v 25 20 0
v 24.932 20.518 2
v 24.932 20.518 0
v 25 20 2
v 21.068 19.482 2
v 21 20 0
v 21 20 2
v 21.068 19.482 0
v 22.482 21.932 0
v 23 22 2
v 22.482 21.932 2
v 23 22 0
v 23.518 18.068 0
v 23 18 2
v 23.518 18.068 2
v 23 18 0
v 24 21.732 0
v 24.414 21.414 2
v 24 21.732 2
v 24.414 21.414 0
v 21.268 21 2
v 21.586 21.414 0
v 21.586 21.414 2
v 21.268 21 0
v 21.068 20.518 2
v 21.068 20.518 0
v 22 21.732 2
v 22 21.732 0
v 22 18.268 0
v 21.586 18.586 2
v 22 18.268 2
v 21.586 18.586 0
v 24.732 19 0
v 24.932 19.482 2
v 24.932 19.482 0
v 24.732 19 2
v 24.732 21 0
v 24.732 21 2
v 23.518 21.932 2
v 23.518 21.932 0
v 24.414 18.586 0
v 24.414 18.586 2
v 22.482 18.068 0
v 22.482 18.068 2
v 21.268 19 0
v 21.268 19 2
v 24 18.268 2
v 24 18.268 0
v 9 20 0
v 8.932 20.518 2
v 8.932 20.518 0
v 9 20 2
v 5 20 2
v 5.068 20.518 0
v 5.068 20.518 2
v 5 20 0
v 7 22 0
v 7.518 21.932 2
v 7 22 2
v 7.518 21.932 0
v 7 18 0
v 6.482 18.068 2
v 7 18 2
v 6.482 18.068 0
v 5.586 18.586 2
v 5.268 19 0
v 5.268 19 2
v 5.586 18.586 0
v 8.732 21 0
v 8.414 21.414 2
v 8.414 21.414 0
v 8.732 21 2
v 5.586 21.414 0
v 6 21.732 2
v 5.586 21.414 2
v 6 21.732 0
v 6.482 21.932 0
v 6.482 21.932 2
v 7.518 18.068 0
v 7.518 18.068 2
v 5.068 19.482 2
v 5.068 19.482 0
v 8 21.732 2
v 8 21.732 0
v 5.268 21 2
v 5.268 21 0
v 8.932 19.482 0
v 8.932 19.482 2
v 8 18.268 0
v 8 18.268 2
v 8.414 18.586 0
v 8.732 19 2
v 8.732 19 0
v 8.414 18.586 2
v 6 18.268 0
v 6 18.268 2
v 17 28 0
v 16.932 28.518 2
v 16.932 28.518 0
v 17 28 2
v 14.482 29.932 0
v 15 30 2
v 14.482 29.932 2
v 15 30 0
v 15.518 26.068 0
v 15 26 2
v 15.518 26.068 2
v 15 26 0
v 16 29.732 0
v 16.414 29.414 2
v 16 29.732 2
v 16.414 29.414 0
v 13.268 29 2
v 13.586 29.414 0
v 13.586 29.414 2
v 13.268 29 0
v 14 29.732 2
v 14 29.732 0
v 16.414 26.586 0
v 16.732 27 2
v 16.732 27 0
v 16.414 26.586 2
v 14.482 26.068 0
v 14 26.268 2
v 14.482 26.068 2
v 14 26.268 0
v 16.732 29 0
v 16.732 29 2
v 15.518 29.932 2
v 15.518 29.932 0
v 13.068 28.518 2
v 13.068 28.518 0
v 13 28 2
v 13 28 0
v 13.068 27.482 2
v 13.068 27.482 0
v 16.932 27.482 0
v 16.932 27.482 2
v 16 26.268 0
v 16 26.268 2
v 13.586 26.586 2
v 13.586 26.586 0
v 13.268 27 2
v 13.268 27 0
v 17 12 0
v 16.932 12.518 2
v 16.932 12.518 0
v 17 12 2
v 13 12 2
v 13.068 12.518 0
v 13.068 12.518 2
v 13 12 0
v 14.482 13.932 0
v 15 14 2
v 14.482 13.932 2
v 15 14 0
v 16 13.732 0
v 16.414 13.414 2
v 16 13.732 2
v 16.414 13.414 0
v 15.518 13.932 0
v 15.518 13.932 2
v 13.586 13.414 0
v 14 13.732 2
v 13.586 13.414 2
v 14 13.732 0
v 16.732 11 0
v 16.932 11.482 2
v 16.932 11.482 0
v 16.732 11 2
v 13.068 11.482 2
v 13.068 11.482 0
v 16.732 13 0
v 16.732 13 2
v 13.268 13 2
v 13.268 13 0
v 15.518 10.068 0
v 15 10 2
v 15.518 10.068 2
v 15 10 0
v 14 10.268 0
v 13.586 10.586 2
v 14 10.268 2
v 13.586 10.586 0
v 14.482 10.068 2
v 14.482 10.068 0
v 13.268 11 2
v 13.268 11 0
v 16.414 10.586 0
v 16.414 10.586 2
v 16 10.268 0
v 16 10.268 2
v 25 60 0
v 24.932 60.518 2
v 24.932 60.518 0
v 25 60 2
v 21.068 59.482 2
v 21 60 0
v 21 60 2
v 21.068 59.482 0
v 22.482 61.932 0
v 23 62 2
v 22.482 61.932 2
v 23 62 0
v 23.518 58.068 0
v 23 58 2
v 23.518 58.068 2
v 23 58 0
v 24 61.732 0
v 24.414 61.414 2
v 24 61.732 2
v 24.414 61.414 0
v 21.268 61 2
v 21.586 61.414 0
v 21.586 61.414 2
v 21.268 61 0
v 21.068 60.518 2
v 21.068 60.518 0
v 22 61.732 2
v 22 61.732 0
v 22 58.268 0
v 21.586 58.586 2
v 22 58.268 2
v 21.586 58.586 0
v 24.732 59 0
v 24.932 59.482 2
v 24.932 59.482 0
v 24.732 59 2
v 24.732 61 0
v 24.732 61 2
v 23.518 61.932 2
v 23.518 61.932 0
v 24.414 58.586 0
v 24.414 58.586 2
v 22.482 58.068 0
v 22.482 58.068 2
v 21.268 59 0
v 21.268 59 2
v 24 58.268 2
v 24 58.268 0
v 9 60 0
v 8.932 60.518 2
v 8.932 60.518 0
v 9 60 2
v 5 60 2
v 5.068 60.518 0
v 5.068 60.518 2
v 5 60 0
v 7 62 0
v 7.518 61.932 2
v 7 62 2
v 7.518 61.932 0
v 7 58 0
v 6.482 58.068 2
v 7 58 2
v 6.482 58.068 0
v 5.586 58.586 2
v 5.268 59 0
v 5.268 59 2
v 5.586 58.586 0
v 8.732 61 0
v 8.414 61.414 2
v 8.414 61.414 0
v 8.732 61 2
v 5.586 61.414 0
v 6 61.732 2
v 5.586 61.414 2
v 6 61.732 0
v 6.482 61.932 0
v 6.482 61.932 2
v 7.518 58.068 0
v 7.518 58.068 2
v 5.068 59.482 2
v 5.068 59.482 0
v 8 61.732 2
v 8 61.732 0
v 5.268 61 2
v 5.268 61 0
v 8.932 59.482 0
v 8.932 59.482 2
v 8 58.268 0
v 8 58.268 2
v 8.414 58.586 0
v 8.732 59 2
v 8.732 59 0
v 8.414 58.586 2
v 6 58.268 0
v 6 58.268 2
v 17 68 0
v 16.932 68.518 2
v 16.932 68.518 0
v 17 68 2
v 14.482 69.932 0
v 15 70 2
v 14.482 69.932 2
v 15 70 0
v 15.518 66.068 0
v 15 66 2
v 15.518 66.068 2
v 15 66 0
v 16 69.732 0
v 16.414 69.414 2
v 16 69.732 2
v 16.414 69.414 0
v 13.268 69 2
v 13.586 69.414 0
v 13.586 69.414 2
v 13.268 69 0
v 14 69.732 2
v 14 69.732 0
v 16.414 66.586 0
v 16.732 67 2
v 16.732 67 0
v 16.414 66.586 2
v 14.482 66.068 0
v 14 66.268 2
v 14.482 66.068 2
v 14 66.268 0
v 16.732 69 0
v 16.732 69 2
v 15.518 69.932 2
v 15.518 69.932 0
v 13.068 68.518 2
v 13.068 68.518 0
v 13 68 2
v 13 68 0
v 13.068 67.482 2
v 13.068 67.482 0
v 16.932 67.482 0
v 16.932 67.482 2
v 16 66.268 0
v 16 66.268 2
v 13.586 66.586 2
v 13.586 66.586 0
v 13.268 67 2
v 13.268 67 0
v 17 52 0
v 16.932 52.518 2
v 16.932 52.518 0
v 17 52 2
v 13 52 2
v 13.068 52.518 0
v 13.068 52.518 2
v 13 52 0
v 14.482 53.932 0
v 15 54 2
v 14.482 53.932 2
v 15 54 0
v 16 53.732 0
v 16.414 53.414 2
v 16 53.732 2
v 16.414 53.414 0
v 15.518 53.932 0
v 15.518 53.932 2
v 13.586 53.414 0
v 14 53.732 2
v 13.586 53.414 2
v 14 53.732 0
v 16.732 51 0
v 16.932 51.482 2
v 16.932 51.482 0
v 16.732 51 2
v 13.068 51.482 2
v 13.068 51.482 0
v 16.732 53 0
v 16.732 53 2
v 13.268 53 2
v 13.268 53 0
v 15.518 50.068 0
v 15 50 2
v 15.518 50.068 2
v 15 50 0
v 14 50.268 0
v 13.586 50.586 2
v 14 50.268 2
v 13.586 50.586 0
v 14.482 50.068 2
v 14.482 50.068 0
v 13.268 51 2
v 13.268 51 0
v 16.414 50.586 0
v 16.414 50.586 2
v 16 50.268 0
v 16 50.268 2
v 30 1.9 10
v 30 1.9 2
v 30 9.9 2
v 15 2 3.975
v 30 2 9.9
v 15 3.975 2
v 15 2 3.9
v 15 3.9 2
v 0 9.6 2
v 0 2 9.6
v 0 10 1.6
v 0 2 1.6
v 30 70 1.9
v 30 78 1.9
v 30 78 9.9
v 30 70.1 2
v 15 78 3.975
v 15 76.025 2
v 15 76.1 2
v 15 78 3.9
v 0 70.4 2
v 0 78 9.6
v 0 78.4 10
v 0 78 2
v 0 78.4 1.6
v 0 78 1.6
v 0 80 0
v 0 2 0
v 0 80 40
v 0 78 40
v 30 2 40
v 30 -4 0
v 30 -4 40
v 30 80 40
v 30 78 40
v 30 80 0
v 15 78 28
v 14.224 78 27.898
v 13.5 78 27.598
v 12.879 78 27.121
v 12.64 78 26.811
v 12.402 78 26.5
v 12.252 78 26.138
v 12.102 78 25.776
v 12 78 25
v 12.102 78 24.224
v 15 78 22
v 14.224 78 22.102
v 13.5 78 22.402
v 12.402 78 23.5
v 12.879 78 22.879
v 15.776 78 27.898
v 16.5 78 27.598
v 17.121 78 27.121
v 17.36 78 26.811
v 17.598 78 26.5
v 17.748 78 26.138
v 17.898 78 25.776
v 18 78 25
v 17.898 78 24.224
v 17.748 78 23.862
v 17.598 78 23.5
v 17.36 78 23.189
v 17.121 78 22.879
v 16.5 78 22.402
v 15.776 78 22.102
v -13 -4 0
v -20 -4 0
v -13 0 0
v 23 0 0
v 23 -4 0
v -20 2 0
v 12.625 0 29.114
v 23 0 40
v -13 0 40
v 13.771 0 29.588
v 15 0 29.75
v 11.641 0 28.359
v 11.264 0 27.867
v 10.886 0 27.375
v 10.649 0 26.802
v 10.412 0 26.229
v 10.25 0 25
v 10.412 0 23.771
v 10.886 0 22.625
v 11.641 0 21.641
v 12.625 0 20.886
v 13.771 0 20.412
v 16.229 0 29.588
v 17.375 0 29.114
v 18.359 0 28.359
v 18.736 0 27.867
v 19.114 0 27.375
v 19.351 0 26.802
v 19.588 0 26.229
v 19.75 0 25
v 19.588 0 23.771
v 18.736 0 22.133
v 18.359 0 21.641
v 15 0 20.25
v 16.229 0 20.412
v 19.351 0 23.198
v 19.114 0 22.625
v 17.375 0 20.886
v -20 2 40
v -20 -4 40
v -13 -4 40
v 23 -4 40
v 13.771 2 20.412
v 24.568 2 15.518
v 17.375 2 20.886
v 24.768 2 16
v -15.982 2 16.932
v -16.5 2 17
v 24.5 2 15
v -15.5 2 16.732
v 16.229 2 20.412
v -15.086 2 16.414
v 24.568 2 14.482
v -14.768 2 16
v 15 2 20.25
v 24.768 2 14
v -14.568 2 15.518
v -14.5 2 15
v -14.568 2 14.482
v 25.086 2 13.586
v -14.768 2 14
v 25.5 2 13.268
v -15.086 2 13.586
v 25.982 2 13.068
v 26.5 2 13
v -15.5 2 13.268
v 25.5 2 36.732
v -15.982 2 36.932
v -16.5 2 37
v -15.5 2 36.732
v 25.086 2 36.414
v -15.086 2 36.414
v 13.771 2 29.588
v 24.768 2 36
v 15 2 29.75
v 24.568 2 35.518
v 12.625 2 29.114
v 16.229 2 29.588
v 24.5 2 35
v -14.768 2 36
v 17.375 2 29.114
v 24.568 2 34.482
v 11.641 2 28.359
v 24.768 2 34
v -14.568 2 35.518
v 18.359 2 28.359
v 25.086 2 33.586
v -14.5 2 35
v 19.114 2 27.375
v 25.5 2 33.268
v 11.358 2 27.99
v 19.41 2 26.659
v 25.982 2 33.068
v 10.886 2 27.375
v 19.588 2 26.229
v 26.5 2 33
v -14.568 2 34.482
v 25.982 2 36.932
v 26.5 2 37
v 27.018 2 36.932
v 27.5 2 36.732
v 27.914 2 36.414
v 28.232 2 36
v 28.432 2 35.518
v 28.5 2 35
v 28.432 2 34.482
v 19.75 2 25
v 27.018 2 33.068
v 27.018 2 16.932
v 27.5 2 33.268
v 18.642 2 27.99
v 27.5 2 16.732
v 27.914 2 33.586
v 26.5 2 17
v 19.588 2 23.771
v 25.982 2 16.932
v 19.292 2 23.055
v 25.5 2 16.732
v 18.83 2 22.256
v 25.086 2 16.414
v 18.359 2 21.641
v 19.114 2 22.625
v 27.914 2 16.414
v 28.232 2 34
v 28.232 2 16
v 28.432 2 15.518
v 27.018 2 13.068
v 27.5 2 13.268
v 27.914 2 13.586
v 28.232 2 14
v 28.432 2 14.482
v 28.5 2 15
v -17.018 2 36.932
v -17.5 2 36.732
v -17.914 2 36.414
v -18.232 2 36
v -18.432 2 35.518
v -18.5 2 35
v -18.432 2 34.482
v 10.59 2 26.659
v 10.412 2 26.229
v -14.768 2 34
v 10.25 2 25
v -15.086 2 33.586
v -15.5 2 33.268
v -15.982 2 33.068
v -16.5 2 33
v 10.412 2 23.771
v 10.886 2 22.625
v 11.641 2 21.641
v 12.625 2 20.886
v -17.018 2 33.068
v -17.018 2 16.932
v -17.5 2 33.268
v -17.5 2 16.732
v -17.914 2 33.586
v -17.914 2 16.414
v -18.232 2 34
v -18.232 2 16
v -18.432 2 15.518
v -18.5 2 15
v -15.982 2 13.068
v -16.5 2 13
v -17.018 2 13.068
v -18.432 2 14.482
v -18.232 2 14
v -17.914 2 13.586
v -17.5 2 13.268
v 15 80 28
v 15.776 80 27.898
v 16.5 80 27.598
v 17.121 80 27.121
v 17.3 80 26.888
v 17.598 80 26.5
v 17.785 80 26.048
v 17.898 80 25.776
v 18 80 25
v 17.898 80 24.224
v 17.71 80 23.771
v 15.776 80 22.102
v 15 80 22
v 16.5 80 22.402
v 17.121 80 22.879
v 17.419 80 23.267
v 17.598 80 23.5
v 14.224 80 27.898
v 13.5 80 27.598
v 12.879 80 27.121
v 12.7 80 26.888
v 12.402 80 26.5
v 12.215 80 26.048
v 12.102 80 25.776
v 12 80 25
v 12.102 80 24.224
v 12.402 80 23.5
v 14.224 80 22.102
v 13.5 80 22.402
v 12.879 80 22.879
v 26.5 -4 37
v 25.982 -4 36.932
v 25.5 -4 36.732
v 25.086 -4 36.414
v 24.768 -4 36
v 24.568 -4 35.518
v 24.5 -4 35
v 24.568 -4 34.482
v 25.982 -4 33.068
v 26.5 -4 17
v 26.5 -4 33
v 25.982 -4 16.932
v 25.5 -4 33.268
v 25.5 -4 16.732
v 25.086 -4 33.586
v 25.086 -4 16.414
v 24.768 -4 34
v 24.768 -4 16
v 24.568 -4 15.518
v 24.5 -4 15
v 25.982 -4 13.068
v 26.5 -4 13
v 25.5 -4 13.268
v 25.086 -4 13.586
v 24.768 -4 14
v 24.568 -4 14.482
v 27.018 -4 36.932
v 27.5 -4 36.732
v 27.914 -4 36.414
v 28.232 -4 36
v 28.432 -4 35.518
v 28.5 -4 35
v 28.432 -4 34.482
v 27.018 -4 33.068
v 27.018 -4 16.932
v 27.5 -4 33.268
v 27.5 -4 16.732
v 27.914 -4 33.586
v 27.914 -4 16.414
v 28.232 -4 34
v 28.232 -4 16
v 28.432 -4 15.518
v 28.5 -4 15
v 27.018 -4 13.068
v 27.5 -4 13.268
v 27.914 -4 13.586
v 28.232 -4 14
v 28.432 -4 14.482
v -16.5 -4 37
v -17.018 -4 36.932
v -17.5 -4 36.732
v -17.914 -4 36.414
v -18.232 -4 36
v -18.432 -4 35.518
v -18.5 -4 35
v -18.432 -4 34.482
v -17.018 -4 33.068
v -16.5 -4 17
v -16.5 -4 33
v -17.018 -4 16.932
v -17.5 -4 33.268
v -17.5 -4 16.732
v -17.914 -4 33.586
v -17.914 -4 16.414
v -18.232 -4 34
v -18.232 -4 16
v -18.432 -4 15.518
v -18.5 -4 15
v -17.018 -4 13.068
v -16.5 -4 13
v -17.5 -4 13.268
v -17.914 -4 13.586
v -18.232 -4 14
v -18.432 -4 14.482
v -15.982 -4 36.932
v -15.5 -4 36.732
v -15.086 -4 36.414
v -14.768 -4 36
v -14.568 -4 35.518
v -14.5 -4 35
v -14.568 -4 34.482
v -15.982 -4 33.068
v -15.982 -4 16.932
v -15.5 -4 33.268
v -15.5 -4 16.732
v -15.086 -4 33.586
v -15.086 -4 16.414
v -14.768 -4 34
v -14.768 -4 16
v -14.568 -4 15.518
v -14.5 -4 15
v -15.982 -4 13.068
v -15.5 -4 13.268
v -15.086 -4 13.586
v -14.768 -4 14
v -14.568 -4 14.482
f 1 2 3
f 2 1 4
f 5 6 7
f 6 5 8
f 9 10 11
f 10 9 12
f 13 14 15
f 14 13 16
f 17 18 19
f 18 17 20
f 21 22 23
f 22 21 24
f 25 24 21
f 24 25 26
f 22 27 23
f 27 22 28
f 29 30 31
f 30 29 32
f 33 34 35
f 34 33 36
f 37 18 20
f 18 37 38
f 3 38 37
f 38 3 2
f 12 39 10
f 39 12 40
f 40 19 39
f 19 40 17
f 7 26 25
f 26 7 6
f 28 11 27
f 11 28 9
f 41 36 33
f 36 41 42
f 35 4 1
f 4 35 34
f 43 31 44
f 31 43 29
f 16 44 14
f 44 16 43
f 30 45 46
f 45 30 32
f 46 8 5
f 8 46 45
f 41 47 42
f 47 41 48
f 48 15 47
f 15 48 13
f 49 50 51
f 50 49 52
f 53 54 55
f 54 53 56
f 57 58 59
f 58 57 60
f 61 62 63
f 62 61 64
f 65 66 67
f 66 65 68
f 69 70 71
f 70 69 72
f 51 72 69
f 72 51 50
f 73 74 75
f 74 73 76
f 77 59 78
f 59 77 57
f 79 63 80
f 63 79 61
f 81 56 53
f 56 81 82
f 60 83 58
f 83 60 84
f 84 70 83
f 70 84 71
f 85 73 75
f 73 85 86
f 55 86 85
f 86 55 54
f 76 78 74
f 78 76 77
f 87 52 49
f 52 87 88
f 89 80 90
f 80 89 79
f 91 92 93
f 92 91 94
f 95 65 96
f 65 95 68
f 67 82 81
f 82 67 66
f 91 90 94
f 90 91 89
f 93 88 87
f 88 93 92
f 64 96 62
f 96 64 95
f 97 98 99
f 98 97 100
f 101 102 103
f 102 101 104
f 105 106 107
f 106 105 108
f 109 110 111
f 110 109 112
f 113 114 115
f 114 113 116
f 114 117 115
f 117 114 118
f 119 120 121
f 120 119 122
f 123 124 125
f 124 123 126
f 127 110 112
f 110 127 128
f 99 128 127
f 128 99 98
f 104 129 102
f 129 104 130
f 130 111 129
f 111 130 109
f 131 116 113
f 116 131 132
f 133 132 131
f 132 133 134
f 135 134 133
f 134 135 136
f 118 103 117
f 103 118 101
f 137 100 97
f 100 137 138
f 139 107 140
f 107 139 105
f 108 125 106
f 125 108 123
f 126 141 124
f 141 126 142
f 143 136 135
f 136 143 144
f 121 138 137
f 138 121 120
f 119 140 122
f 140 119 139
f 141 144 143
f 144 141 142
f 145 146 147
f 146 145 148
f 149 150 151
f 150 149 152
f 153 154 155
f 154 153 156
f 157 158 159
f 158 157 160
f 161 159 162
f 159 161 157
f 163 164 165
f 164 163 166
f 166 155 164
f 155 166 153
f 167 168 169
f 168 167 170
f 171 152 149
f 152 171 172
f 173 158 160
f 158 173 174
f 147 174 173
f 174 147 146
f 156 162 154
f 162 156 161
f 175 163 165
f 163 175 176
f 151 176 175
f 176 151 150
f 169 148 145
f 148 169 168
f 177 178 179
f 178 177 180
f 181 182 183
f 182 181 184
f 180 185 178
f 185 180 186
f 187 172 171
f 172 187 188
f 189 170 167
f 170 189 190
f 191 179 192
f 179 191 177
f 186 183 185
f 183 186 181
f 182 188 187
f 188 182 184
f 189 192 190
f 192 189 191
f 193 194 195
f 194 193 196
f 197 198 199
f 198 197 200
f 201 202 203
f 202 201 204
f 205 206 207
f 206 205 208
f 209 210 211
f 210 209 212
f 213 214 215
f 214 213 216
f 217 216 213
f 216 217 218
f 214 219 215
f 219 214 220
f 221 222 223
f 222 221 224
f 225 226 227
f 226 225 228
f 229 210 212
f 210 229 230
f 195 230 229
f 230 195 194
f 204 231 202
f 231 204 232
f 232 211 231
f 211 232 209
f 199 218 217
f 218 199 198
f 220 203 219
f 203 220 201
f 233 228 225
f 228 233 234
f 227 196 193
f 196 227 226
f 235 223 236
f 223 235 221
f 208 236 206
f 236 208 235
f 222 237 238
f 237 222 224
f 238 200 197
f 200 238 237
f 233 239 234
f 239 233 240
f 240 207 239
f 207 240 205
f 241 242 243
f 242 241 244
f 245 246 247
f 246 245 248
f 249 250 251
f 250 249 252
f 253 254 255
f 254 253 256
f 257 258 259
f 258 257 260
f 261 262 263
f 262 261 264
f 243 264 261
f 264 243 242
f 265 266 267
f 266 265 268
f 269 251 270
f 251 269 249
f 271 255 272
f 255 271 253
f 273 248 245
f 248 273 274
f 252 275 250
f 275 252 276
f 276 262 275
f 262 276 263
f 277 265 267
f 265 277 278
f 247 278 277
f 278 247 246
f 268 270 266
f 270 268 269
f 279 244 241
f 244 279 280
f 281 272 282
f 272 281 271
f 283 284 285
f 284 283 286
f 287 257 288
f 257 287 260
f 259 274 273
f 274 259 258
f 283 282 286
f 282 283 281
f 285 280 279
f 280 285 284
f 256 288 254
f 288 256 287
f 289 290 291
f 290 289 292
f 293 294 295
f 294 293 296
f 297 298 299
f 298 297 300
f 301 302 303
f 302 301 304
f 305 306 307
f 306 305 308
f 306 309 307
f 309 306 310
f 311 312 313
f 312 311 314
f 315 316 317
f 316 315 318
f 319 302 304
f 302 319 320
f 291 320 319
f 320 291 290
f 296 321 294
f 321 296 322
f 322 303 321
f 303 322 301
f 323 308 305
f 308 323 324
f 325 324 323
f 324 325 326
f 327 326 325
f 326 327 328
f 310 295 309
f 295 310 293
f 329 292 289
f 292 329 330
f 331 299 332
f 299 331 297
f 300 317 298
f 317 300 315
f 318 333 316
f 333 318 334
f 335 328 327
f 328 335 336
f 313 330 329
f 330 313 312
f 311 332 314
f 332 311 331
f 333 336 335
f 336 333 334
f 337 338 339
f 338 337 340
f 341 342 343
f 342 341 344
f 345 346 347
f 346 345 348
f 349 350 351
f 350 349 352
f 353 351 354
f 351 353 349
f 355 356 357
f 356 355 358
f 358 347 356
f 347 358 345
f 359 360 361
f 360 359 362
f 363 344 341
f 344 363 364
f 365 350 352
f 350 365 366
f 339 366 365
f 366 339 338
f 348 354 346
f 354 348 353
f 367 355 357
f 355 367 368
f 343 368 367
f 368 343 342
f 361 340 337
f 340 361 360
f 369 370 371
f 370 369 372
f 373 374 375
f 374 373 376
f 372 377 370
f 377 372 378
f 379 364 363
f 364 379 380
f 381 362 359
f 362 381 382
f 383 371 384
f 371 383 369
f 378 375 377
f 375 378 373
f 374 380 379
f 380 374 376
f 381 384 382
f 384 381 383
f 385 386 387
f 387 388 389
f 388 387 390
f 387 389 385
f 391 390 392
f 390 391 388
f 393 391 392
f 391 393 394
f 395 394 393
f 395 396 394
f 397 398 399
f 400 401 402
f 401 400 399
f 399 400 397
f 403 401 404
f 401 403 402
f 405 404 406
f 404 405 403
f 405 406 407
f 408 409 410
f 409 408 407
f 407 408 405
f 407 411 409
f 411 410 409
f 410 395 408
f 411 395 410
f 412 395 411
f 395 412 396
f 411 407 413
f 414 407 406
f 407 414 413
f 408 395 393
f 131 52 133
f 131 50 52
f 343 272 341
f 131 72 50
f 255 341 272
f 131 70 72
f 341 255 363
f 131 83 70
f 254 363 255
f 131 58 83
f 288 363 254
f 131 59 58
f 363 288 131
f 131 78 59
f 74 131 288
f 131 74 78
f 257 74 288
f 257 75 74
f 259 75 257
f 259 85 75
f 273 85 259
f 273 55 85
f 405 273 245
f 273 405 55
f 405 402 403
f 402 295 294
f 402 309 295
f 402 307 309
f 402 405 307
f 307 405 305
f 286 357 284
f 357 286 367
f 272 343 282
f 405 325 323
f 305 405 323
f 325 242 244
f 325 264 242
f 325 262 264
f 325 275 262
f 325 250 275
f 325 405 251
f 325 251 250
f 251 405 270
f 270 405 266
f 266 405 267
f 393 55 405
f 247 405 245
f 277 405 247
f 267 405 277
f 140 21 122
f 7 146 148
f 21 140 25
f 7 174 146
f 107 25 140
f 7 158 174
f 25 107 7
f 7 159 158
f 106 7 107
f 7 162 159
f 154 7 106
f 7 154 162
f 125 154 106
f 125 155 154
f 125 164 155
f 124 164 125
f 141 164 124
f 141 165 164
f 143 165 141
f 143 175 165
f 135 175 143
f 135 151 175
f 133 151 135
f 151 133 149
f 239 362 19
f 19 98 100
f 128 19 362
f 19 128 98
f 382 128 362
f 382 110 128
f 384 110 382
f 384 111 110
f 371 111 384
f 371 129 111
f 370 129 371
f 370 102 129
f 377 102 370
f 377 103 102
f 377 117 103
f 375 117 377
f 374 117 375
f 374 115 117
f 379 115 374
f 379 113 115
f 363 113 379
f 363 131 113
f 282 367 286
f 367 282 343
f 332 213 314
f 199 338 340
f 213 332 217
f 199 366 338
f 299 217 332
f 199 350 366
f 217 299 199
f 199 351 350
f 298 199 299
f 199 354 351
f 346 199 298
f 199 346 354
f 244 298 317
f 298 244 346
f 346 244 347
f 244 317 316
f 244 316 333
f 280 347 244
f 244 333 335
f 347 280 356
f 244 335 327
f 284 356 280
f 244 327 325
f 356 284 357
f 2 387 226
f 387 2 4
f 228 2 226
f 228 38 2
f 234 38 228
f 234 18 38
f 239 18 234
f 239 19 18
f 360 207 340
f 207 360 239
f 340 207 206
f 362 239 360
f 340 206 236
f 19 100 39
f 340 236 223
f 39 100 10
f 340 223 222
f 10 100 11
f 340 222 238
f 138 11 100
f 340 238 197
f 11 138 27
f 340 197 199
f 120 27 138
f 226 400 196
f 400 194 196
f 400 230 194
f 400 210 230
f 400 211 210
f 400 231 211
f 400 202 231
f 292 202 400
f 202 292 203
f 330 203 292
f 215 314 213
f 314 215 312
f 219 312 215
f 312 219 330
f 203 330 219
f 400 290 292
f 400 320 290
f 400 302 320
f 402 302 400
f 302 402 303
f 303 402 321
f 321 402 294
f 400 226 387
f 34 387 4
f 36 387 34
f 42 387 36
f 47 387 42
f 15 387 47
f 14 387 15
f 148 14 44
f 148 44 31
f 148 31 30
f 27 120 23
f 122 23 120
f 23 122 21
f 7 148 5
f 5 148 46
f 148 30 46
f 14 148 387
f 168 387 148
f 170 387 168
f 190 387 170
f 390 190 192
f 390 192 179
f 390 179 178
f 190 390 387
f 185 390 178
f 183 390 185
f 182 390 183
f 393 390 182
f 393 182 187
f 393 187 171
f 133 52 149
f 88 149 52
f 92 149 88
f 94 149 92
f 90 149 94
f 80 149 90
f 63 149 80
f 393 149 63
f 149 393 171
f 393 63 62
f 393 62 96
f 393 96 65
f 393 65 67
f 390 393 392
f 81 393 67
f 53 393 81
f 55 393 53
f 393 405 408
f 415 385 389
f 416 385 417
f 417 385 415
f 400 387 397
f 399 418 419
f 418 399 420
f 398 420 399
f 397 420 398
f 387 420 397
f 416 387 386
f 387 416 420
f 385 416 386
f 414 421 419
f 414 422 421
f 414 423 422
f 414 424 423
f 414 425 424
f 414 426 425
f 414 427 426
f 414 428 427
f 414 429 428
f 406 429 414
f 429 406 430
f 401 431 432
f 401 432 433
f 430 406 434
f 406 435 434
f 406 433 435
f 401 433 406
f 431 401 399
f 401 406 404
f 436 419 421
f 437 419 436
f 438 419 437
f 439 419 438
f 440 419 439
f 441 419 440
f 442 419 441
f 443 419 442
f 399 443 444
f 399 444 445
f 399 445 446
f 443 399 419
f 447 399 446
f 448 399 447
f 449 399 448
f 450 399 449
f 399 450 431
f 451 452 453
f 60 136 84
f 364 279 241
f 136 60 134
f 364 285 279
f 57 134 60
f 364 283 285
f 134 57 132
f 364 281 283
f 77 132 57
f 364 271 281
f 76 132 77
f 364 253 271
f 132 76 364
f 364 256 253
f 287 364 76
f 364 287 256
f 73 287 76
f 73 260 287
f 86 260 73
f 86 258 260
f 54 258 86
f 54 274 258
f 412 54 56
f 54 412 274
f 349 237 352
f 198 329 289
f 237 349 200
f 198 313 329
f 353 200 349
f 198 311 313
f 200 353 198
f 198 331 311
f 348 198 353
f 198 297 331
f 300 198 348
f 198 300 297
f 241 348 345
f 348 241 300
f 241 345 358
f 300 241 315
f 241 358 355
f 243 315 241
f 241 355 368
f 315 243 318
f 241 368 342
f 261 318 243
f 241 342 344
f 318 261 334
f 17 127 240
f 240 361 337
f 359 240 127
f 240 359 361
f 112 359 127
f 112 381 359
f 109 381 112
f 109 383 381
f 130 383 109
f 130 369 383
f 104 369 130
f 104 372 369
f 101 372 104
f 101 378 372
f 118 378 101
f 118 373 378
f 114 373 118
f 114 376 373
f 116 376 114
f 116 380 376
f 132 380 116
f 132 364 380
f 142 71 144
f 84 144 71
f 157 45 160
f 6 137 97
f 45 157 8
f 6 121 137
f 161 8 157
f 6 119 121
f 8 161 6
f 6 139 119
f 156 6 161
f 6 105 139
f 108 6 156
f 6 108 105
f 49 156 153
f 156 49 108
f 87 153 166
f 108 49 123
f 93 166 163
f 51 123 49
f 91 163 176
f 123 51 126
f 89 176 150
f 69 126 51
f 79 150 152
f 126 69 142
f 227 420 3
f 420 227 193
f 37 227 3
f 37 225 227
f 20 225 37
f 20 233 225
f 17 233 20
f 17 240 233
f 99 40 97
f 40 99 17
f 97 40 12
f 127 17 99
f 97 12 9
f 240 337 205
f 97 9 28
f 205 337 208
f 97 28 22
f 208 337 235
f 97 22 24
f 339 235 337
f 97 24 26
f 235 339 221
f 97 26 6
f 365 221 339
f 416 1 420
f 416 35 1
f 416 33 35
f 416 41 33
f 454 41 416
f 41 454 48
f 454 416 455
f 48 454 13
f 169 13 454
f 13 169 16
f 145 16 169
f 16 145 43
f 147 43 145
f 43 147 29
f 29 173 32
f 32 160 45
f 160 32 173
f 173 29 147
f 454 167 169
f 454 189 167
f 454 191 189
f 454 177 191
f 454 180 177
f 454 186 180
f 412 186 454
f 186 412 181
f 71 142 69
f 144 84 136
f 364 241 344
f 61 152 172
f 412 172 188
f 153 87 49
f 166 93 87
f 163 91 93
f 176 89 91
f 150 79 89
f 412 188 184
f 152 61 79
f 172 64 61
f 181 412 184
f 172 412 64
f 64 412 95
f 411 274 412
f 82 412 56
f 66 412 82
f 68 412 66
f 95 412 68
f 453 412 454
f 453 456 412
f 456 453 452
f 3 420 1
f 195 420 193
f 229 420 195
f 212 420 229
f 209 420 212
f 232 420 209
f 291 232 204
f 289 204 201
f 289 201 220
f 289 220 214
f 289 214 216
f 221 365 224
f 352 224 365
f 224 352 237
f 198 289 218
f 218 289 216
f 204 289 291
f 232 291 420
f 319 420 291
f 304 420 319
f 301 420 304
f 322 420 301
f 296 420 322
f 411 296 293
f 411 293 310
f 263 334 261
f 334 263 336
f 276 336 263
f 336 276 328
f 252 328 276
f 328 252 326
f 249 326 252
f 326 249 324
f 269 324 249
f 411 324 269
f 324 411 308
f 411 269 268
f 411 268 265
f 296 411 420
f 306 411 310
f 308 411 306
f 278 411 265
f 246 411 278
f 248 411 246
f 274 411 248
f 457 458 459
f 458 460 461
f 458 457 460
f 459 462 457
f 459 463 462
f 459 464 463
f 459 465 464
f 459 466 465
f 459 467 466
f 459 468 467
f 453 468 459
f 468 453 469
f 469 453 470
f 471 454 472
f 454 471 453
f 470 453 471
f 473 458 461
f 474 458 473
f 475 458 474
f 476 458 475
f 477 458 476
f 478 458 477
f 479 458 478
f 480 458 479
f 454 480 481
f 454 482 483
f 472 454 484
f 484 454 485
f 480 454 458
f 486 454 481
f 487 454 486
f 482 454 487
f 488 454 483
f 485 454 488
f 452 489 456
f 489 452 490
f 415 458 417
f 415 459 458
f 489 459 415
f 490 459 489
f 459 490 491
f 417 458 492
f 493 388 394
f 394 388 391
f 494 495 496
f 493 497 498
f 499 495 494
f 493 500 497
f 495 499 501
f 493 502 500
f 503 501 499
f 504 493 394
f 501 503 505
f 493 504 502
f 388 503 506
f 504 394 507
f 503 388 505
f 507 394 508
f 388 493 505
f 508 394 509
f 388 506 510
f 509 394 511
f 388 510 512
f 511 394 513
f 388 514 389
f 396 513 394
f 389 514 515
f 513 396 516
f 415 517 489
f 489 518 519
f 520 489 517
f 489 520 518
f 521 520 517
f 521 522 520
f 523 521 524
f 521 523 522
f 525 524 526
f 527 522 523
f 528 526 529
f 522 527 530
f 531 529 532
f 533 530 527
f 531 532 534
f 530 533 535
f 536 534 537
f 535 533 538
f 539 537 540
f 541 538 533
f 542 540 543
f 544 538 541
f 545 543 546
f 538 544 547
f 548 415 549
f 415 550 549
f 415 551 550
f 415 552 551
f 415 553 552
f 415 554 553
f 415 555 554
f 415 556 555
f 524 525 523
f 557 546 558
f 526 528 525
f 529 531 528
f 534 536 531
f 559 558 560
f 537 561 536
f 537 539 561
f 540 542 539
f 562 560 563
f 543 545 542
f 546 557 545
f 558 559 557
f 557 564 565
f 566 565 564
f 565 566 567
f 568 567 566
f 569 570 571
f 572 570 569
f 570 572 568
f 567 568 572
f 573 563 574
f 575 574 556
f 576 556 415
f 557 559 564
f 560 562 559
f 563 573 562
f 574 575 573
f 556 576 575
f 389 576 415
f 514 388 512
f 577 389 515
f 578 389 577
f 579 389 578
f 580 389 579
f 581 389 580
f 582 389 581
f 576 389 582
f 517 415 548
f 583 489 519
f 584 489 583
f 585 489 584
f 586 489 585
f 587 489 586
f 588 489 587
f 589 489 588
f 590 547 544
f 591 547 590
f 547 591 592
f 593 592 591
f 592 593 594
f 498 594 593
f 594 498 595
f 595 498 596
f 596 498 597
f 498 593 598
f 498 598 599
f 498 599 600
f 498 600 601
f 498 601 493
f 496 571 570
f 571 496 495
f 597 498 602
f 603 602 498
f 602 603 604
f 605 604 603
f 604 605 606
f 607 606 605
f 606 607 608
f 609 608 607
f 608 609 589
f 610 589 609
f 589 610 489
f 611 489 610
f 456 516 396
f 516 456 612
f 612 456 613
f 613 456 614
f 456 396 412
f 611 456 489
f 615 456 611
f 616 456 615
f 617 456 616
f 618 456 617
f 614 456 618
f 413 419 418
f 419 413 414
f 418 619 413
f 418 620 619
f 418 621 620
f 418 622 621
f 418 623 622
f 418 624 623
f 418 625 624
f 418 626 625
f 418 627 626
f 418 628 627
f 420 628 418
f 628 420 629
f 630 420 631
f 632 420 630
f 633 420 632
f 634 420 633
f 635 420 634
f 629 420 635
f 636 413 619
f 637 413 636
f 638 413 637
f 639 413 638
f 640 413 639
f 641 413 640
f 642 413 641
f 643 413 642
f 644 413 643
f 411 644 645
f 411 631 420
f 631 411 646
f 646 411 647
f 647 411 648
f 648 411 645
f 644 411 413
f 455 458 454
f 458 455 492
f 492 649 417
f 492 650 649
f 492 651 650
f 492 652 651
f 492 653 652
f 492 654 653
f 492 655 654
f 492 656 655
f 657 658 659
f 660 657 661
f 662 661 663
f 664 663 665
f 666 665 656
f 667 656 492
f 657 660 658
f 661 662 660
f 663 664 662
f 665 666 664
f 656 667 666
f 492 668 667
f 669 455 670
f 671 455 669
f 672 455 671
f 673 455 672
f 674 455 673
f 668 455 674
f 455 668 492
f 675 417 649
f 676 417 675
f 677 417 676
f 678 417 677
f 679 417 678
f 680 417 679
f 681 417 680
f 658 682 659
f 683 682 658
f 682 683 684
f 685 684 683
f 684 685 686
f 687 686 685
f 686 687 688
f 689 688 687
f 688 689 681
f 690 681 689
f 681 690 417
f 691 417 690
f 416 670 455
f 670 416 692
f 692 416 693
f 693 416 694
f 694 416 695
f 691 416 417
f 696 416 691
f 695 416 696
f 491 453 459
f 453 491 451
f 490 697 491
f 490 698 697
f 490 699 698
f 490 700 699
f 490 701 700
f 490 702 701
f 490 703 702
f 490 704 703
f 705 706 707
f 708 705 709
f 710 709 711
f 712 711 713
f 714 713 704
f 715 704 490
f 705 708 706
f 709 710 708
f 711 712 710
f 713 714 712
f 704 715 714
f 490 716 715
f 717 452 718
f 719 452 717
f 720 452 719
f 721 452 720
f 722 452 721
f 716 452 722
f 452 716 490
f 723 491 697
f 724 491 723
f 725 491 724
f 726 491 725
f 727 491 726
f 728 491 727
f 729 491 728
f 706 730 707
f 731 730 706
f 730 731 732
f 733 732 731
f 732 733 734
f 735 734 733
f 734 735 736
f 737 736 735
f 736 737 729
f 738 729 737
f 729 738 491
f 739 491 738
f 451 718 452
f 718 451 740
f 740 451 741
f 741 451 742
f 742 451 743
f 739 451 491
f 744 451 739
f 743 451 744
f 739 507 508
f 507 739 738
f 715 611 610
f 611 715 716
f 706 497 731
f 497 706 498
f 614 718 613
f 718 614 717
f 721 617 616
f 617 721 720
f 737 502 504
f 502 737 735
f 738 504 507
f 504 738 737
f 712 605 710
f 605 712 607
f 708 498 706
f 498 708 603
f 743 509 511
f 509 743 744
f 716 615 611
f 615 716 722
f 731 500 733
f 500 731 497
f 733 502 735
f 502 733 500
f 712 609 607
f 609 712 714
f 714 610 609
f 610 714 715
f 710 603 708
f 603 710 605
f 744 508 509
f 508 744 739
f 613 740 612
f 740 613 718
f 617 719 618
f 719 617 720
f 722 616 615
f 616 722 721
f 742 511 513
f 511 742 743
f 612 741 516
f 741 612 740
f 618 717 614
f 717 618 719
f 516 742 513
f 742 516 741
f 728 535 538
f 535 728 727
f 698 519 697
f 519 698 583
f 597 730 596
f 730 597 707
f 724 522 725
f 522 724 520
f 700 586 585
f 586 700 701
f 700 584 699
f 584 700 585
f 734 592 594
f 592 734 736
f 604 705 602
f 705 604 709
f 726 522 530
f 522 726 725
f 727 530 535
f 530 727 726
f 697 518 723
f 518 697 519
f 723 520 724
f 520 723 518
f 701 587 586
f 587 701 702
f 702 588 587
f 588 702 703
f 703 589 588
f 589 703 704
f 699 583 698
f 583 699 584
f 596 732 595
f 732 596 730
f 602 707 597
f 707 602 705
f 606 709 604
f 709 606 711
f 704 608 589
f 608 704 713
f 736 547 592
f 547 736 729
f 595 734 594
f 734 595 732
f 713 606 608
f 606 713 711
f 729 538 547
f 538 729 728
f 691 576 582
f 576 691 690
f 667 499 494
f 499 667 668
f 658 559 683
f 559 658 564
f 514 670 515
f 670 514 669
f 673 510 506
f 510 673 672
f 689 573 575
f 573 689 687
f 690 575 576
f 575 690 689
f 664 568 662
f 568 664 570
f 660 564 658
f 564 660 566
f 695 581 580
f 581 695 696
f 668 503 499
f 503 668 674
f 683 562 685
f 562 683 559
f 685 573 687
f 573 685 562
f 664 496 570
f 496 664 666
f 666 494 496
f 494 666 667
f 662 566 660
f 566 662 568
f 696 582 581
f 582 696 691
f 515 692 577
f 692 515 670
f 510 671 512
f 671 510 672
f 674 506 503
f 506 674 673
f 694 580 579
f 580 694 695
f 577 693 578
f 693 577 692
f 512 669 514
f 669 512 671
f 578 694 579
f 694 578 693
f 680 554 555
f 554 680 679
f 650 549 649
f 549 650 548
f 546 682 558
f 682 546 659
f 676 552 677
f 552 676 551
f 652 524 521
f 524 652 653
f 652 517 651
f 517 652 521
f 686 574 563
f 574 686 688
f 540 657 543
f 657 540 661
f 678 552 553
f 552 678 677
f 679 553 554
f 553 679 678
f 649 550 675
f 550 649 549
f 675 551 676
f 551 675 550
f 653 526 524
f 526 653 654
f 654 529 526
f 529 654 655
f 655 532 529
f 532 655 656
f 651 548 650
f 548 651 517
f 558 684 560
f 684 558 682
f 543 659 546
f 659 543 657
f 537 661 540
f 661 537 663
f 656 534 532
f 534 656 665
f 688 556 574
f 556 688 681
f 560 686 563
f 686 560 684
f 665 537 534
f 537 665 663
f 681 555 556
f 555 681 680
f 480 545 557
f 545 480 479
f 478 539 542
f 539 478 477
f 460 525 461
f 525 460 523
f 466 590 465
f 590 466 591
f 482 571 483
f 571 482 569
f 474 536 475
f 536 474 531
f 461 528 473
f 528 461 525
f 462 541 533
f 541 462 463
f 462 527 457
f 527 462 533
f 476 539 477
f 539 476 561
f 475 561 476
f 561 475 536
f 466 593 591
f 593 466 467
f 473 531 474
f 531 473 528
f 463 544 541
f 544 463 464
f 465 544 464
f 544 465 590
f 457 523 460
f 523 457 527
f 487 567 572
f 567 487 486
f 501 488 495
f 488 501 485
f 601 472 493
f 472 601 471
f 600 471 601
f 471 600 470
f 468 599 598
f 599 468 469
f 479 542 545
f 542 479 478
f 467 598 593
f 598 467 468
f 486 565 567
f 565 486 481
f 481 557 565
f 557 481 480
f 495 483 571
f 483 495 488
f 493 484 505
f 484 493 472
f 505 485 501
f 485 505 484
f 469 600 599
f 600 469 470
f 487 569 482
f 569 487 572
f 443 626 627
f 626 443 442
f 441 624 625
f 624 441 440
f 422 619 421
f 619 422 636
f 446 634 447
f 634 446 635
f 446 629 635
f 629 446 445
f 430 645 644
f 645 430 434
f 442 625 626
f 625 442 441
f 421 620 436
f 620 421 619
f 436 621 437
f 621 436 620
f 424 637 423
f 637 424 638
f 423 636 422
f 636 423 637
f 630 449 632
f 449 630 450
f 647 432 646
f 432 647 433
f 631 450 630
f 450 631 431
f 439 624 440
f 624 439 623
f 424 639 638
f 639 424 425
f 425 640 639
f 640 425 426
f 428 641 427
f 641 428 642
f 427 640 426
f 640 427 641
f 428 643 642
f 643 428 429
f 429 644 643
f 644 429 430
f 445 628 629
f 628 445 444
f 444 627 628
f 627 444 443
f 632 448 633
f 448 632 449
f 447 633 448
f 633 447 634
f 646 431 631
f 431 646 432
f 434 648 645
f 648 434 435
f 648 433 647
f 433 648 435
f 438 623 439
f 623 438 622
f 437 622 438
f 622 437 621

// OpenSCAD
supportLength = 78;
supportWidth = 30;

supportThickness = 2;

braceLength = 50;
bracePadding = 10;
braceDepth = 30;
braceThickness = 2;

mountWidth = 7;
mountDepth = 4;
mountSpacing = 20;

maxReinforcingThickness = 8;
minReinforcingThickness = 2;

tabWidth = 8;
tabGapWidth = 3;
tabRadius = 200.0;
tabDepth = 4;

bigHoleOffset = 15;


topHolesOffset = 20;
bottomHolesOffset = 60;

holeDepth = 8;
holeOffset = 8;
holeRadius = 2;

bigHoleDepth = 1.5;
bigHoleRadius = 4.75;
bottomHoleRadius = 3;

holeOffset = 8;
holeRadius = 2;

holeFacets = 24;


difference() {
    union() {
        cube([supportWidth,supportLength,supportThickness]);
        translate([supportWidth - braceLength,0,0])
            cube([braceLength,braceThickness,
                  braceDepth+bracePadding]);
        translate([0,supportLength,0])
            cube([supportWidth,
                  braceThickness,
                  bracePadding+braceDepth]);
        translate([supportWidth - mountWidth,-mountDepth,0])
            cube([mountWidth,mountDepth,braceDepth+bracePadding]);
        translate([supportWidth-braceLength,-mountDepth,0])
            cube([mountWidth,mountDepth,braceDepth+bracePadding]);

        translate([supportWidth,braceThickness,supportThickness])
            Reinforcement();
        
        translate([supportWidth,
                   supportLength,supportThickness])
            rotate([90,0,0])
                 Reinforcement();
  
    }

    translate([supportWidth/2, topHolesOffset, 0])
        Holes();
    translate([supportWidth/2,
               bottomHolesOffset, 0])
        Holes();
    translate([supportWidth-braceLength + mountWidth/2,
               0,bracePadding + braceDepth/2])
        MountHoles();
    translate([supportWidth - mountWidth + mountWidth/2,
               0,bracePadding + braceDepth/2])
        MountHoles();
    
    translate([supportWidth/2,0,bracePadding + braceDepth/2])
        rotate([90,0,0])
            cylinder(r=bigHoleRadius,h=16,
                     center=true, $fn=holeFacets);
    
    translate([supportWidth/2,
              supportLength,bracePadding + braceDepth/2])
        rotate([90,0,0])
            cylinder(r=bottomHoleRadius,h=16,
                     center=true, $fn=holeFacets); 
}

module Reinforcement() {
    color("green")
    rotate([0,-90,0]) {
    linear_extrude(height=supportWidth/2,
                   scale=minReinforcingThickness/
                         maxReinforcingThickness)
      polygon(points=[[-.1,-.1],
                      [maxReinforcingThickness,-.1],
                      [-.1,maxReinforcingThickness]]);

    translate([0,0,supportWidth/2])
        linear_extrude(height=supportWidth/2,
                       scale=maxReinforcingThickness/
                             minReinforcingThickness)
            polygon(points=[[-.1,-.1],
                            [minReinforcingThickness,-.1],
                            [-.1,minReinforcingThickness]]);

    }
}

module MountHoles() {
    rotate([90,0,0])
        translate([0,-mountSpacing/2,0]) {
        cylinder(r=holeRadius,h=16,
                 center=true, $fn=holeFacets); 
        translate([0,mountSpacing,0])
            cylinder(r=holeRadius,h=16,
                 center=true, $fn=holeFacets); 
    }
}

module Holes() {
    translate([holeOffset,0,0])
        cylinder(r=holeRadius,h=holeDepth,
                 center=true, $fn=holeFacets);
    translate([-holeOffset,0,0])
        cylinder(r=holeRadius,h=holeDepth,
                 center=true, $fn=holeFacets);
    translate([0,holeOffset,0])
        cylinder(r=holeRadius,h=holeDepth,
                 center=true, $fn=holeFacets);
    translate([0,-holeOffset,0])
        cylinder(r=holeRadius,h=holeDepth,
                 center=true, $fn=holeFacets);
}
